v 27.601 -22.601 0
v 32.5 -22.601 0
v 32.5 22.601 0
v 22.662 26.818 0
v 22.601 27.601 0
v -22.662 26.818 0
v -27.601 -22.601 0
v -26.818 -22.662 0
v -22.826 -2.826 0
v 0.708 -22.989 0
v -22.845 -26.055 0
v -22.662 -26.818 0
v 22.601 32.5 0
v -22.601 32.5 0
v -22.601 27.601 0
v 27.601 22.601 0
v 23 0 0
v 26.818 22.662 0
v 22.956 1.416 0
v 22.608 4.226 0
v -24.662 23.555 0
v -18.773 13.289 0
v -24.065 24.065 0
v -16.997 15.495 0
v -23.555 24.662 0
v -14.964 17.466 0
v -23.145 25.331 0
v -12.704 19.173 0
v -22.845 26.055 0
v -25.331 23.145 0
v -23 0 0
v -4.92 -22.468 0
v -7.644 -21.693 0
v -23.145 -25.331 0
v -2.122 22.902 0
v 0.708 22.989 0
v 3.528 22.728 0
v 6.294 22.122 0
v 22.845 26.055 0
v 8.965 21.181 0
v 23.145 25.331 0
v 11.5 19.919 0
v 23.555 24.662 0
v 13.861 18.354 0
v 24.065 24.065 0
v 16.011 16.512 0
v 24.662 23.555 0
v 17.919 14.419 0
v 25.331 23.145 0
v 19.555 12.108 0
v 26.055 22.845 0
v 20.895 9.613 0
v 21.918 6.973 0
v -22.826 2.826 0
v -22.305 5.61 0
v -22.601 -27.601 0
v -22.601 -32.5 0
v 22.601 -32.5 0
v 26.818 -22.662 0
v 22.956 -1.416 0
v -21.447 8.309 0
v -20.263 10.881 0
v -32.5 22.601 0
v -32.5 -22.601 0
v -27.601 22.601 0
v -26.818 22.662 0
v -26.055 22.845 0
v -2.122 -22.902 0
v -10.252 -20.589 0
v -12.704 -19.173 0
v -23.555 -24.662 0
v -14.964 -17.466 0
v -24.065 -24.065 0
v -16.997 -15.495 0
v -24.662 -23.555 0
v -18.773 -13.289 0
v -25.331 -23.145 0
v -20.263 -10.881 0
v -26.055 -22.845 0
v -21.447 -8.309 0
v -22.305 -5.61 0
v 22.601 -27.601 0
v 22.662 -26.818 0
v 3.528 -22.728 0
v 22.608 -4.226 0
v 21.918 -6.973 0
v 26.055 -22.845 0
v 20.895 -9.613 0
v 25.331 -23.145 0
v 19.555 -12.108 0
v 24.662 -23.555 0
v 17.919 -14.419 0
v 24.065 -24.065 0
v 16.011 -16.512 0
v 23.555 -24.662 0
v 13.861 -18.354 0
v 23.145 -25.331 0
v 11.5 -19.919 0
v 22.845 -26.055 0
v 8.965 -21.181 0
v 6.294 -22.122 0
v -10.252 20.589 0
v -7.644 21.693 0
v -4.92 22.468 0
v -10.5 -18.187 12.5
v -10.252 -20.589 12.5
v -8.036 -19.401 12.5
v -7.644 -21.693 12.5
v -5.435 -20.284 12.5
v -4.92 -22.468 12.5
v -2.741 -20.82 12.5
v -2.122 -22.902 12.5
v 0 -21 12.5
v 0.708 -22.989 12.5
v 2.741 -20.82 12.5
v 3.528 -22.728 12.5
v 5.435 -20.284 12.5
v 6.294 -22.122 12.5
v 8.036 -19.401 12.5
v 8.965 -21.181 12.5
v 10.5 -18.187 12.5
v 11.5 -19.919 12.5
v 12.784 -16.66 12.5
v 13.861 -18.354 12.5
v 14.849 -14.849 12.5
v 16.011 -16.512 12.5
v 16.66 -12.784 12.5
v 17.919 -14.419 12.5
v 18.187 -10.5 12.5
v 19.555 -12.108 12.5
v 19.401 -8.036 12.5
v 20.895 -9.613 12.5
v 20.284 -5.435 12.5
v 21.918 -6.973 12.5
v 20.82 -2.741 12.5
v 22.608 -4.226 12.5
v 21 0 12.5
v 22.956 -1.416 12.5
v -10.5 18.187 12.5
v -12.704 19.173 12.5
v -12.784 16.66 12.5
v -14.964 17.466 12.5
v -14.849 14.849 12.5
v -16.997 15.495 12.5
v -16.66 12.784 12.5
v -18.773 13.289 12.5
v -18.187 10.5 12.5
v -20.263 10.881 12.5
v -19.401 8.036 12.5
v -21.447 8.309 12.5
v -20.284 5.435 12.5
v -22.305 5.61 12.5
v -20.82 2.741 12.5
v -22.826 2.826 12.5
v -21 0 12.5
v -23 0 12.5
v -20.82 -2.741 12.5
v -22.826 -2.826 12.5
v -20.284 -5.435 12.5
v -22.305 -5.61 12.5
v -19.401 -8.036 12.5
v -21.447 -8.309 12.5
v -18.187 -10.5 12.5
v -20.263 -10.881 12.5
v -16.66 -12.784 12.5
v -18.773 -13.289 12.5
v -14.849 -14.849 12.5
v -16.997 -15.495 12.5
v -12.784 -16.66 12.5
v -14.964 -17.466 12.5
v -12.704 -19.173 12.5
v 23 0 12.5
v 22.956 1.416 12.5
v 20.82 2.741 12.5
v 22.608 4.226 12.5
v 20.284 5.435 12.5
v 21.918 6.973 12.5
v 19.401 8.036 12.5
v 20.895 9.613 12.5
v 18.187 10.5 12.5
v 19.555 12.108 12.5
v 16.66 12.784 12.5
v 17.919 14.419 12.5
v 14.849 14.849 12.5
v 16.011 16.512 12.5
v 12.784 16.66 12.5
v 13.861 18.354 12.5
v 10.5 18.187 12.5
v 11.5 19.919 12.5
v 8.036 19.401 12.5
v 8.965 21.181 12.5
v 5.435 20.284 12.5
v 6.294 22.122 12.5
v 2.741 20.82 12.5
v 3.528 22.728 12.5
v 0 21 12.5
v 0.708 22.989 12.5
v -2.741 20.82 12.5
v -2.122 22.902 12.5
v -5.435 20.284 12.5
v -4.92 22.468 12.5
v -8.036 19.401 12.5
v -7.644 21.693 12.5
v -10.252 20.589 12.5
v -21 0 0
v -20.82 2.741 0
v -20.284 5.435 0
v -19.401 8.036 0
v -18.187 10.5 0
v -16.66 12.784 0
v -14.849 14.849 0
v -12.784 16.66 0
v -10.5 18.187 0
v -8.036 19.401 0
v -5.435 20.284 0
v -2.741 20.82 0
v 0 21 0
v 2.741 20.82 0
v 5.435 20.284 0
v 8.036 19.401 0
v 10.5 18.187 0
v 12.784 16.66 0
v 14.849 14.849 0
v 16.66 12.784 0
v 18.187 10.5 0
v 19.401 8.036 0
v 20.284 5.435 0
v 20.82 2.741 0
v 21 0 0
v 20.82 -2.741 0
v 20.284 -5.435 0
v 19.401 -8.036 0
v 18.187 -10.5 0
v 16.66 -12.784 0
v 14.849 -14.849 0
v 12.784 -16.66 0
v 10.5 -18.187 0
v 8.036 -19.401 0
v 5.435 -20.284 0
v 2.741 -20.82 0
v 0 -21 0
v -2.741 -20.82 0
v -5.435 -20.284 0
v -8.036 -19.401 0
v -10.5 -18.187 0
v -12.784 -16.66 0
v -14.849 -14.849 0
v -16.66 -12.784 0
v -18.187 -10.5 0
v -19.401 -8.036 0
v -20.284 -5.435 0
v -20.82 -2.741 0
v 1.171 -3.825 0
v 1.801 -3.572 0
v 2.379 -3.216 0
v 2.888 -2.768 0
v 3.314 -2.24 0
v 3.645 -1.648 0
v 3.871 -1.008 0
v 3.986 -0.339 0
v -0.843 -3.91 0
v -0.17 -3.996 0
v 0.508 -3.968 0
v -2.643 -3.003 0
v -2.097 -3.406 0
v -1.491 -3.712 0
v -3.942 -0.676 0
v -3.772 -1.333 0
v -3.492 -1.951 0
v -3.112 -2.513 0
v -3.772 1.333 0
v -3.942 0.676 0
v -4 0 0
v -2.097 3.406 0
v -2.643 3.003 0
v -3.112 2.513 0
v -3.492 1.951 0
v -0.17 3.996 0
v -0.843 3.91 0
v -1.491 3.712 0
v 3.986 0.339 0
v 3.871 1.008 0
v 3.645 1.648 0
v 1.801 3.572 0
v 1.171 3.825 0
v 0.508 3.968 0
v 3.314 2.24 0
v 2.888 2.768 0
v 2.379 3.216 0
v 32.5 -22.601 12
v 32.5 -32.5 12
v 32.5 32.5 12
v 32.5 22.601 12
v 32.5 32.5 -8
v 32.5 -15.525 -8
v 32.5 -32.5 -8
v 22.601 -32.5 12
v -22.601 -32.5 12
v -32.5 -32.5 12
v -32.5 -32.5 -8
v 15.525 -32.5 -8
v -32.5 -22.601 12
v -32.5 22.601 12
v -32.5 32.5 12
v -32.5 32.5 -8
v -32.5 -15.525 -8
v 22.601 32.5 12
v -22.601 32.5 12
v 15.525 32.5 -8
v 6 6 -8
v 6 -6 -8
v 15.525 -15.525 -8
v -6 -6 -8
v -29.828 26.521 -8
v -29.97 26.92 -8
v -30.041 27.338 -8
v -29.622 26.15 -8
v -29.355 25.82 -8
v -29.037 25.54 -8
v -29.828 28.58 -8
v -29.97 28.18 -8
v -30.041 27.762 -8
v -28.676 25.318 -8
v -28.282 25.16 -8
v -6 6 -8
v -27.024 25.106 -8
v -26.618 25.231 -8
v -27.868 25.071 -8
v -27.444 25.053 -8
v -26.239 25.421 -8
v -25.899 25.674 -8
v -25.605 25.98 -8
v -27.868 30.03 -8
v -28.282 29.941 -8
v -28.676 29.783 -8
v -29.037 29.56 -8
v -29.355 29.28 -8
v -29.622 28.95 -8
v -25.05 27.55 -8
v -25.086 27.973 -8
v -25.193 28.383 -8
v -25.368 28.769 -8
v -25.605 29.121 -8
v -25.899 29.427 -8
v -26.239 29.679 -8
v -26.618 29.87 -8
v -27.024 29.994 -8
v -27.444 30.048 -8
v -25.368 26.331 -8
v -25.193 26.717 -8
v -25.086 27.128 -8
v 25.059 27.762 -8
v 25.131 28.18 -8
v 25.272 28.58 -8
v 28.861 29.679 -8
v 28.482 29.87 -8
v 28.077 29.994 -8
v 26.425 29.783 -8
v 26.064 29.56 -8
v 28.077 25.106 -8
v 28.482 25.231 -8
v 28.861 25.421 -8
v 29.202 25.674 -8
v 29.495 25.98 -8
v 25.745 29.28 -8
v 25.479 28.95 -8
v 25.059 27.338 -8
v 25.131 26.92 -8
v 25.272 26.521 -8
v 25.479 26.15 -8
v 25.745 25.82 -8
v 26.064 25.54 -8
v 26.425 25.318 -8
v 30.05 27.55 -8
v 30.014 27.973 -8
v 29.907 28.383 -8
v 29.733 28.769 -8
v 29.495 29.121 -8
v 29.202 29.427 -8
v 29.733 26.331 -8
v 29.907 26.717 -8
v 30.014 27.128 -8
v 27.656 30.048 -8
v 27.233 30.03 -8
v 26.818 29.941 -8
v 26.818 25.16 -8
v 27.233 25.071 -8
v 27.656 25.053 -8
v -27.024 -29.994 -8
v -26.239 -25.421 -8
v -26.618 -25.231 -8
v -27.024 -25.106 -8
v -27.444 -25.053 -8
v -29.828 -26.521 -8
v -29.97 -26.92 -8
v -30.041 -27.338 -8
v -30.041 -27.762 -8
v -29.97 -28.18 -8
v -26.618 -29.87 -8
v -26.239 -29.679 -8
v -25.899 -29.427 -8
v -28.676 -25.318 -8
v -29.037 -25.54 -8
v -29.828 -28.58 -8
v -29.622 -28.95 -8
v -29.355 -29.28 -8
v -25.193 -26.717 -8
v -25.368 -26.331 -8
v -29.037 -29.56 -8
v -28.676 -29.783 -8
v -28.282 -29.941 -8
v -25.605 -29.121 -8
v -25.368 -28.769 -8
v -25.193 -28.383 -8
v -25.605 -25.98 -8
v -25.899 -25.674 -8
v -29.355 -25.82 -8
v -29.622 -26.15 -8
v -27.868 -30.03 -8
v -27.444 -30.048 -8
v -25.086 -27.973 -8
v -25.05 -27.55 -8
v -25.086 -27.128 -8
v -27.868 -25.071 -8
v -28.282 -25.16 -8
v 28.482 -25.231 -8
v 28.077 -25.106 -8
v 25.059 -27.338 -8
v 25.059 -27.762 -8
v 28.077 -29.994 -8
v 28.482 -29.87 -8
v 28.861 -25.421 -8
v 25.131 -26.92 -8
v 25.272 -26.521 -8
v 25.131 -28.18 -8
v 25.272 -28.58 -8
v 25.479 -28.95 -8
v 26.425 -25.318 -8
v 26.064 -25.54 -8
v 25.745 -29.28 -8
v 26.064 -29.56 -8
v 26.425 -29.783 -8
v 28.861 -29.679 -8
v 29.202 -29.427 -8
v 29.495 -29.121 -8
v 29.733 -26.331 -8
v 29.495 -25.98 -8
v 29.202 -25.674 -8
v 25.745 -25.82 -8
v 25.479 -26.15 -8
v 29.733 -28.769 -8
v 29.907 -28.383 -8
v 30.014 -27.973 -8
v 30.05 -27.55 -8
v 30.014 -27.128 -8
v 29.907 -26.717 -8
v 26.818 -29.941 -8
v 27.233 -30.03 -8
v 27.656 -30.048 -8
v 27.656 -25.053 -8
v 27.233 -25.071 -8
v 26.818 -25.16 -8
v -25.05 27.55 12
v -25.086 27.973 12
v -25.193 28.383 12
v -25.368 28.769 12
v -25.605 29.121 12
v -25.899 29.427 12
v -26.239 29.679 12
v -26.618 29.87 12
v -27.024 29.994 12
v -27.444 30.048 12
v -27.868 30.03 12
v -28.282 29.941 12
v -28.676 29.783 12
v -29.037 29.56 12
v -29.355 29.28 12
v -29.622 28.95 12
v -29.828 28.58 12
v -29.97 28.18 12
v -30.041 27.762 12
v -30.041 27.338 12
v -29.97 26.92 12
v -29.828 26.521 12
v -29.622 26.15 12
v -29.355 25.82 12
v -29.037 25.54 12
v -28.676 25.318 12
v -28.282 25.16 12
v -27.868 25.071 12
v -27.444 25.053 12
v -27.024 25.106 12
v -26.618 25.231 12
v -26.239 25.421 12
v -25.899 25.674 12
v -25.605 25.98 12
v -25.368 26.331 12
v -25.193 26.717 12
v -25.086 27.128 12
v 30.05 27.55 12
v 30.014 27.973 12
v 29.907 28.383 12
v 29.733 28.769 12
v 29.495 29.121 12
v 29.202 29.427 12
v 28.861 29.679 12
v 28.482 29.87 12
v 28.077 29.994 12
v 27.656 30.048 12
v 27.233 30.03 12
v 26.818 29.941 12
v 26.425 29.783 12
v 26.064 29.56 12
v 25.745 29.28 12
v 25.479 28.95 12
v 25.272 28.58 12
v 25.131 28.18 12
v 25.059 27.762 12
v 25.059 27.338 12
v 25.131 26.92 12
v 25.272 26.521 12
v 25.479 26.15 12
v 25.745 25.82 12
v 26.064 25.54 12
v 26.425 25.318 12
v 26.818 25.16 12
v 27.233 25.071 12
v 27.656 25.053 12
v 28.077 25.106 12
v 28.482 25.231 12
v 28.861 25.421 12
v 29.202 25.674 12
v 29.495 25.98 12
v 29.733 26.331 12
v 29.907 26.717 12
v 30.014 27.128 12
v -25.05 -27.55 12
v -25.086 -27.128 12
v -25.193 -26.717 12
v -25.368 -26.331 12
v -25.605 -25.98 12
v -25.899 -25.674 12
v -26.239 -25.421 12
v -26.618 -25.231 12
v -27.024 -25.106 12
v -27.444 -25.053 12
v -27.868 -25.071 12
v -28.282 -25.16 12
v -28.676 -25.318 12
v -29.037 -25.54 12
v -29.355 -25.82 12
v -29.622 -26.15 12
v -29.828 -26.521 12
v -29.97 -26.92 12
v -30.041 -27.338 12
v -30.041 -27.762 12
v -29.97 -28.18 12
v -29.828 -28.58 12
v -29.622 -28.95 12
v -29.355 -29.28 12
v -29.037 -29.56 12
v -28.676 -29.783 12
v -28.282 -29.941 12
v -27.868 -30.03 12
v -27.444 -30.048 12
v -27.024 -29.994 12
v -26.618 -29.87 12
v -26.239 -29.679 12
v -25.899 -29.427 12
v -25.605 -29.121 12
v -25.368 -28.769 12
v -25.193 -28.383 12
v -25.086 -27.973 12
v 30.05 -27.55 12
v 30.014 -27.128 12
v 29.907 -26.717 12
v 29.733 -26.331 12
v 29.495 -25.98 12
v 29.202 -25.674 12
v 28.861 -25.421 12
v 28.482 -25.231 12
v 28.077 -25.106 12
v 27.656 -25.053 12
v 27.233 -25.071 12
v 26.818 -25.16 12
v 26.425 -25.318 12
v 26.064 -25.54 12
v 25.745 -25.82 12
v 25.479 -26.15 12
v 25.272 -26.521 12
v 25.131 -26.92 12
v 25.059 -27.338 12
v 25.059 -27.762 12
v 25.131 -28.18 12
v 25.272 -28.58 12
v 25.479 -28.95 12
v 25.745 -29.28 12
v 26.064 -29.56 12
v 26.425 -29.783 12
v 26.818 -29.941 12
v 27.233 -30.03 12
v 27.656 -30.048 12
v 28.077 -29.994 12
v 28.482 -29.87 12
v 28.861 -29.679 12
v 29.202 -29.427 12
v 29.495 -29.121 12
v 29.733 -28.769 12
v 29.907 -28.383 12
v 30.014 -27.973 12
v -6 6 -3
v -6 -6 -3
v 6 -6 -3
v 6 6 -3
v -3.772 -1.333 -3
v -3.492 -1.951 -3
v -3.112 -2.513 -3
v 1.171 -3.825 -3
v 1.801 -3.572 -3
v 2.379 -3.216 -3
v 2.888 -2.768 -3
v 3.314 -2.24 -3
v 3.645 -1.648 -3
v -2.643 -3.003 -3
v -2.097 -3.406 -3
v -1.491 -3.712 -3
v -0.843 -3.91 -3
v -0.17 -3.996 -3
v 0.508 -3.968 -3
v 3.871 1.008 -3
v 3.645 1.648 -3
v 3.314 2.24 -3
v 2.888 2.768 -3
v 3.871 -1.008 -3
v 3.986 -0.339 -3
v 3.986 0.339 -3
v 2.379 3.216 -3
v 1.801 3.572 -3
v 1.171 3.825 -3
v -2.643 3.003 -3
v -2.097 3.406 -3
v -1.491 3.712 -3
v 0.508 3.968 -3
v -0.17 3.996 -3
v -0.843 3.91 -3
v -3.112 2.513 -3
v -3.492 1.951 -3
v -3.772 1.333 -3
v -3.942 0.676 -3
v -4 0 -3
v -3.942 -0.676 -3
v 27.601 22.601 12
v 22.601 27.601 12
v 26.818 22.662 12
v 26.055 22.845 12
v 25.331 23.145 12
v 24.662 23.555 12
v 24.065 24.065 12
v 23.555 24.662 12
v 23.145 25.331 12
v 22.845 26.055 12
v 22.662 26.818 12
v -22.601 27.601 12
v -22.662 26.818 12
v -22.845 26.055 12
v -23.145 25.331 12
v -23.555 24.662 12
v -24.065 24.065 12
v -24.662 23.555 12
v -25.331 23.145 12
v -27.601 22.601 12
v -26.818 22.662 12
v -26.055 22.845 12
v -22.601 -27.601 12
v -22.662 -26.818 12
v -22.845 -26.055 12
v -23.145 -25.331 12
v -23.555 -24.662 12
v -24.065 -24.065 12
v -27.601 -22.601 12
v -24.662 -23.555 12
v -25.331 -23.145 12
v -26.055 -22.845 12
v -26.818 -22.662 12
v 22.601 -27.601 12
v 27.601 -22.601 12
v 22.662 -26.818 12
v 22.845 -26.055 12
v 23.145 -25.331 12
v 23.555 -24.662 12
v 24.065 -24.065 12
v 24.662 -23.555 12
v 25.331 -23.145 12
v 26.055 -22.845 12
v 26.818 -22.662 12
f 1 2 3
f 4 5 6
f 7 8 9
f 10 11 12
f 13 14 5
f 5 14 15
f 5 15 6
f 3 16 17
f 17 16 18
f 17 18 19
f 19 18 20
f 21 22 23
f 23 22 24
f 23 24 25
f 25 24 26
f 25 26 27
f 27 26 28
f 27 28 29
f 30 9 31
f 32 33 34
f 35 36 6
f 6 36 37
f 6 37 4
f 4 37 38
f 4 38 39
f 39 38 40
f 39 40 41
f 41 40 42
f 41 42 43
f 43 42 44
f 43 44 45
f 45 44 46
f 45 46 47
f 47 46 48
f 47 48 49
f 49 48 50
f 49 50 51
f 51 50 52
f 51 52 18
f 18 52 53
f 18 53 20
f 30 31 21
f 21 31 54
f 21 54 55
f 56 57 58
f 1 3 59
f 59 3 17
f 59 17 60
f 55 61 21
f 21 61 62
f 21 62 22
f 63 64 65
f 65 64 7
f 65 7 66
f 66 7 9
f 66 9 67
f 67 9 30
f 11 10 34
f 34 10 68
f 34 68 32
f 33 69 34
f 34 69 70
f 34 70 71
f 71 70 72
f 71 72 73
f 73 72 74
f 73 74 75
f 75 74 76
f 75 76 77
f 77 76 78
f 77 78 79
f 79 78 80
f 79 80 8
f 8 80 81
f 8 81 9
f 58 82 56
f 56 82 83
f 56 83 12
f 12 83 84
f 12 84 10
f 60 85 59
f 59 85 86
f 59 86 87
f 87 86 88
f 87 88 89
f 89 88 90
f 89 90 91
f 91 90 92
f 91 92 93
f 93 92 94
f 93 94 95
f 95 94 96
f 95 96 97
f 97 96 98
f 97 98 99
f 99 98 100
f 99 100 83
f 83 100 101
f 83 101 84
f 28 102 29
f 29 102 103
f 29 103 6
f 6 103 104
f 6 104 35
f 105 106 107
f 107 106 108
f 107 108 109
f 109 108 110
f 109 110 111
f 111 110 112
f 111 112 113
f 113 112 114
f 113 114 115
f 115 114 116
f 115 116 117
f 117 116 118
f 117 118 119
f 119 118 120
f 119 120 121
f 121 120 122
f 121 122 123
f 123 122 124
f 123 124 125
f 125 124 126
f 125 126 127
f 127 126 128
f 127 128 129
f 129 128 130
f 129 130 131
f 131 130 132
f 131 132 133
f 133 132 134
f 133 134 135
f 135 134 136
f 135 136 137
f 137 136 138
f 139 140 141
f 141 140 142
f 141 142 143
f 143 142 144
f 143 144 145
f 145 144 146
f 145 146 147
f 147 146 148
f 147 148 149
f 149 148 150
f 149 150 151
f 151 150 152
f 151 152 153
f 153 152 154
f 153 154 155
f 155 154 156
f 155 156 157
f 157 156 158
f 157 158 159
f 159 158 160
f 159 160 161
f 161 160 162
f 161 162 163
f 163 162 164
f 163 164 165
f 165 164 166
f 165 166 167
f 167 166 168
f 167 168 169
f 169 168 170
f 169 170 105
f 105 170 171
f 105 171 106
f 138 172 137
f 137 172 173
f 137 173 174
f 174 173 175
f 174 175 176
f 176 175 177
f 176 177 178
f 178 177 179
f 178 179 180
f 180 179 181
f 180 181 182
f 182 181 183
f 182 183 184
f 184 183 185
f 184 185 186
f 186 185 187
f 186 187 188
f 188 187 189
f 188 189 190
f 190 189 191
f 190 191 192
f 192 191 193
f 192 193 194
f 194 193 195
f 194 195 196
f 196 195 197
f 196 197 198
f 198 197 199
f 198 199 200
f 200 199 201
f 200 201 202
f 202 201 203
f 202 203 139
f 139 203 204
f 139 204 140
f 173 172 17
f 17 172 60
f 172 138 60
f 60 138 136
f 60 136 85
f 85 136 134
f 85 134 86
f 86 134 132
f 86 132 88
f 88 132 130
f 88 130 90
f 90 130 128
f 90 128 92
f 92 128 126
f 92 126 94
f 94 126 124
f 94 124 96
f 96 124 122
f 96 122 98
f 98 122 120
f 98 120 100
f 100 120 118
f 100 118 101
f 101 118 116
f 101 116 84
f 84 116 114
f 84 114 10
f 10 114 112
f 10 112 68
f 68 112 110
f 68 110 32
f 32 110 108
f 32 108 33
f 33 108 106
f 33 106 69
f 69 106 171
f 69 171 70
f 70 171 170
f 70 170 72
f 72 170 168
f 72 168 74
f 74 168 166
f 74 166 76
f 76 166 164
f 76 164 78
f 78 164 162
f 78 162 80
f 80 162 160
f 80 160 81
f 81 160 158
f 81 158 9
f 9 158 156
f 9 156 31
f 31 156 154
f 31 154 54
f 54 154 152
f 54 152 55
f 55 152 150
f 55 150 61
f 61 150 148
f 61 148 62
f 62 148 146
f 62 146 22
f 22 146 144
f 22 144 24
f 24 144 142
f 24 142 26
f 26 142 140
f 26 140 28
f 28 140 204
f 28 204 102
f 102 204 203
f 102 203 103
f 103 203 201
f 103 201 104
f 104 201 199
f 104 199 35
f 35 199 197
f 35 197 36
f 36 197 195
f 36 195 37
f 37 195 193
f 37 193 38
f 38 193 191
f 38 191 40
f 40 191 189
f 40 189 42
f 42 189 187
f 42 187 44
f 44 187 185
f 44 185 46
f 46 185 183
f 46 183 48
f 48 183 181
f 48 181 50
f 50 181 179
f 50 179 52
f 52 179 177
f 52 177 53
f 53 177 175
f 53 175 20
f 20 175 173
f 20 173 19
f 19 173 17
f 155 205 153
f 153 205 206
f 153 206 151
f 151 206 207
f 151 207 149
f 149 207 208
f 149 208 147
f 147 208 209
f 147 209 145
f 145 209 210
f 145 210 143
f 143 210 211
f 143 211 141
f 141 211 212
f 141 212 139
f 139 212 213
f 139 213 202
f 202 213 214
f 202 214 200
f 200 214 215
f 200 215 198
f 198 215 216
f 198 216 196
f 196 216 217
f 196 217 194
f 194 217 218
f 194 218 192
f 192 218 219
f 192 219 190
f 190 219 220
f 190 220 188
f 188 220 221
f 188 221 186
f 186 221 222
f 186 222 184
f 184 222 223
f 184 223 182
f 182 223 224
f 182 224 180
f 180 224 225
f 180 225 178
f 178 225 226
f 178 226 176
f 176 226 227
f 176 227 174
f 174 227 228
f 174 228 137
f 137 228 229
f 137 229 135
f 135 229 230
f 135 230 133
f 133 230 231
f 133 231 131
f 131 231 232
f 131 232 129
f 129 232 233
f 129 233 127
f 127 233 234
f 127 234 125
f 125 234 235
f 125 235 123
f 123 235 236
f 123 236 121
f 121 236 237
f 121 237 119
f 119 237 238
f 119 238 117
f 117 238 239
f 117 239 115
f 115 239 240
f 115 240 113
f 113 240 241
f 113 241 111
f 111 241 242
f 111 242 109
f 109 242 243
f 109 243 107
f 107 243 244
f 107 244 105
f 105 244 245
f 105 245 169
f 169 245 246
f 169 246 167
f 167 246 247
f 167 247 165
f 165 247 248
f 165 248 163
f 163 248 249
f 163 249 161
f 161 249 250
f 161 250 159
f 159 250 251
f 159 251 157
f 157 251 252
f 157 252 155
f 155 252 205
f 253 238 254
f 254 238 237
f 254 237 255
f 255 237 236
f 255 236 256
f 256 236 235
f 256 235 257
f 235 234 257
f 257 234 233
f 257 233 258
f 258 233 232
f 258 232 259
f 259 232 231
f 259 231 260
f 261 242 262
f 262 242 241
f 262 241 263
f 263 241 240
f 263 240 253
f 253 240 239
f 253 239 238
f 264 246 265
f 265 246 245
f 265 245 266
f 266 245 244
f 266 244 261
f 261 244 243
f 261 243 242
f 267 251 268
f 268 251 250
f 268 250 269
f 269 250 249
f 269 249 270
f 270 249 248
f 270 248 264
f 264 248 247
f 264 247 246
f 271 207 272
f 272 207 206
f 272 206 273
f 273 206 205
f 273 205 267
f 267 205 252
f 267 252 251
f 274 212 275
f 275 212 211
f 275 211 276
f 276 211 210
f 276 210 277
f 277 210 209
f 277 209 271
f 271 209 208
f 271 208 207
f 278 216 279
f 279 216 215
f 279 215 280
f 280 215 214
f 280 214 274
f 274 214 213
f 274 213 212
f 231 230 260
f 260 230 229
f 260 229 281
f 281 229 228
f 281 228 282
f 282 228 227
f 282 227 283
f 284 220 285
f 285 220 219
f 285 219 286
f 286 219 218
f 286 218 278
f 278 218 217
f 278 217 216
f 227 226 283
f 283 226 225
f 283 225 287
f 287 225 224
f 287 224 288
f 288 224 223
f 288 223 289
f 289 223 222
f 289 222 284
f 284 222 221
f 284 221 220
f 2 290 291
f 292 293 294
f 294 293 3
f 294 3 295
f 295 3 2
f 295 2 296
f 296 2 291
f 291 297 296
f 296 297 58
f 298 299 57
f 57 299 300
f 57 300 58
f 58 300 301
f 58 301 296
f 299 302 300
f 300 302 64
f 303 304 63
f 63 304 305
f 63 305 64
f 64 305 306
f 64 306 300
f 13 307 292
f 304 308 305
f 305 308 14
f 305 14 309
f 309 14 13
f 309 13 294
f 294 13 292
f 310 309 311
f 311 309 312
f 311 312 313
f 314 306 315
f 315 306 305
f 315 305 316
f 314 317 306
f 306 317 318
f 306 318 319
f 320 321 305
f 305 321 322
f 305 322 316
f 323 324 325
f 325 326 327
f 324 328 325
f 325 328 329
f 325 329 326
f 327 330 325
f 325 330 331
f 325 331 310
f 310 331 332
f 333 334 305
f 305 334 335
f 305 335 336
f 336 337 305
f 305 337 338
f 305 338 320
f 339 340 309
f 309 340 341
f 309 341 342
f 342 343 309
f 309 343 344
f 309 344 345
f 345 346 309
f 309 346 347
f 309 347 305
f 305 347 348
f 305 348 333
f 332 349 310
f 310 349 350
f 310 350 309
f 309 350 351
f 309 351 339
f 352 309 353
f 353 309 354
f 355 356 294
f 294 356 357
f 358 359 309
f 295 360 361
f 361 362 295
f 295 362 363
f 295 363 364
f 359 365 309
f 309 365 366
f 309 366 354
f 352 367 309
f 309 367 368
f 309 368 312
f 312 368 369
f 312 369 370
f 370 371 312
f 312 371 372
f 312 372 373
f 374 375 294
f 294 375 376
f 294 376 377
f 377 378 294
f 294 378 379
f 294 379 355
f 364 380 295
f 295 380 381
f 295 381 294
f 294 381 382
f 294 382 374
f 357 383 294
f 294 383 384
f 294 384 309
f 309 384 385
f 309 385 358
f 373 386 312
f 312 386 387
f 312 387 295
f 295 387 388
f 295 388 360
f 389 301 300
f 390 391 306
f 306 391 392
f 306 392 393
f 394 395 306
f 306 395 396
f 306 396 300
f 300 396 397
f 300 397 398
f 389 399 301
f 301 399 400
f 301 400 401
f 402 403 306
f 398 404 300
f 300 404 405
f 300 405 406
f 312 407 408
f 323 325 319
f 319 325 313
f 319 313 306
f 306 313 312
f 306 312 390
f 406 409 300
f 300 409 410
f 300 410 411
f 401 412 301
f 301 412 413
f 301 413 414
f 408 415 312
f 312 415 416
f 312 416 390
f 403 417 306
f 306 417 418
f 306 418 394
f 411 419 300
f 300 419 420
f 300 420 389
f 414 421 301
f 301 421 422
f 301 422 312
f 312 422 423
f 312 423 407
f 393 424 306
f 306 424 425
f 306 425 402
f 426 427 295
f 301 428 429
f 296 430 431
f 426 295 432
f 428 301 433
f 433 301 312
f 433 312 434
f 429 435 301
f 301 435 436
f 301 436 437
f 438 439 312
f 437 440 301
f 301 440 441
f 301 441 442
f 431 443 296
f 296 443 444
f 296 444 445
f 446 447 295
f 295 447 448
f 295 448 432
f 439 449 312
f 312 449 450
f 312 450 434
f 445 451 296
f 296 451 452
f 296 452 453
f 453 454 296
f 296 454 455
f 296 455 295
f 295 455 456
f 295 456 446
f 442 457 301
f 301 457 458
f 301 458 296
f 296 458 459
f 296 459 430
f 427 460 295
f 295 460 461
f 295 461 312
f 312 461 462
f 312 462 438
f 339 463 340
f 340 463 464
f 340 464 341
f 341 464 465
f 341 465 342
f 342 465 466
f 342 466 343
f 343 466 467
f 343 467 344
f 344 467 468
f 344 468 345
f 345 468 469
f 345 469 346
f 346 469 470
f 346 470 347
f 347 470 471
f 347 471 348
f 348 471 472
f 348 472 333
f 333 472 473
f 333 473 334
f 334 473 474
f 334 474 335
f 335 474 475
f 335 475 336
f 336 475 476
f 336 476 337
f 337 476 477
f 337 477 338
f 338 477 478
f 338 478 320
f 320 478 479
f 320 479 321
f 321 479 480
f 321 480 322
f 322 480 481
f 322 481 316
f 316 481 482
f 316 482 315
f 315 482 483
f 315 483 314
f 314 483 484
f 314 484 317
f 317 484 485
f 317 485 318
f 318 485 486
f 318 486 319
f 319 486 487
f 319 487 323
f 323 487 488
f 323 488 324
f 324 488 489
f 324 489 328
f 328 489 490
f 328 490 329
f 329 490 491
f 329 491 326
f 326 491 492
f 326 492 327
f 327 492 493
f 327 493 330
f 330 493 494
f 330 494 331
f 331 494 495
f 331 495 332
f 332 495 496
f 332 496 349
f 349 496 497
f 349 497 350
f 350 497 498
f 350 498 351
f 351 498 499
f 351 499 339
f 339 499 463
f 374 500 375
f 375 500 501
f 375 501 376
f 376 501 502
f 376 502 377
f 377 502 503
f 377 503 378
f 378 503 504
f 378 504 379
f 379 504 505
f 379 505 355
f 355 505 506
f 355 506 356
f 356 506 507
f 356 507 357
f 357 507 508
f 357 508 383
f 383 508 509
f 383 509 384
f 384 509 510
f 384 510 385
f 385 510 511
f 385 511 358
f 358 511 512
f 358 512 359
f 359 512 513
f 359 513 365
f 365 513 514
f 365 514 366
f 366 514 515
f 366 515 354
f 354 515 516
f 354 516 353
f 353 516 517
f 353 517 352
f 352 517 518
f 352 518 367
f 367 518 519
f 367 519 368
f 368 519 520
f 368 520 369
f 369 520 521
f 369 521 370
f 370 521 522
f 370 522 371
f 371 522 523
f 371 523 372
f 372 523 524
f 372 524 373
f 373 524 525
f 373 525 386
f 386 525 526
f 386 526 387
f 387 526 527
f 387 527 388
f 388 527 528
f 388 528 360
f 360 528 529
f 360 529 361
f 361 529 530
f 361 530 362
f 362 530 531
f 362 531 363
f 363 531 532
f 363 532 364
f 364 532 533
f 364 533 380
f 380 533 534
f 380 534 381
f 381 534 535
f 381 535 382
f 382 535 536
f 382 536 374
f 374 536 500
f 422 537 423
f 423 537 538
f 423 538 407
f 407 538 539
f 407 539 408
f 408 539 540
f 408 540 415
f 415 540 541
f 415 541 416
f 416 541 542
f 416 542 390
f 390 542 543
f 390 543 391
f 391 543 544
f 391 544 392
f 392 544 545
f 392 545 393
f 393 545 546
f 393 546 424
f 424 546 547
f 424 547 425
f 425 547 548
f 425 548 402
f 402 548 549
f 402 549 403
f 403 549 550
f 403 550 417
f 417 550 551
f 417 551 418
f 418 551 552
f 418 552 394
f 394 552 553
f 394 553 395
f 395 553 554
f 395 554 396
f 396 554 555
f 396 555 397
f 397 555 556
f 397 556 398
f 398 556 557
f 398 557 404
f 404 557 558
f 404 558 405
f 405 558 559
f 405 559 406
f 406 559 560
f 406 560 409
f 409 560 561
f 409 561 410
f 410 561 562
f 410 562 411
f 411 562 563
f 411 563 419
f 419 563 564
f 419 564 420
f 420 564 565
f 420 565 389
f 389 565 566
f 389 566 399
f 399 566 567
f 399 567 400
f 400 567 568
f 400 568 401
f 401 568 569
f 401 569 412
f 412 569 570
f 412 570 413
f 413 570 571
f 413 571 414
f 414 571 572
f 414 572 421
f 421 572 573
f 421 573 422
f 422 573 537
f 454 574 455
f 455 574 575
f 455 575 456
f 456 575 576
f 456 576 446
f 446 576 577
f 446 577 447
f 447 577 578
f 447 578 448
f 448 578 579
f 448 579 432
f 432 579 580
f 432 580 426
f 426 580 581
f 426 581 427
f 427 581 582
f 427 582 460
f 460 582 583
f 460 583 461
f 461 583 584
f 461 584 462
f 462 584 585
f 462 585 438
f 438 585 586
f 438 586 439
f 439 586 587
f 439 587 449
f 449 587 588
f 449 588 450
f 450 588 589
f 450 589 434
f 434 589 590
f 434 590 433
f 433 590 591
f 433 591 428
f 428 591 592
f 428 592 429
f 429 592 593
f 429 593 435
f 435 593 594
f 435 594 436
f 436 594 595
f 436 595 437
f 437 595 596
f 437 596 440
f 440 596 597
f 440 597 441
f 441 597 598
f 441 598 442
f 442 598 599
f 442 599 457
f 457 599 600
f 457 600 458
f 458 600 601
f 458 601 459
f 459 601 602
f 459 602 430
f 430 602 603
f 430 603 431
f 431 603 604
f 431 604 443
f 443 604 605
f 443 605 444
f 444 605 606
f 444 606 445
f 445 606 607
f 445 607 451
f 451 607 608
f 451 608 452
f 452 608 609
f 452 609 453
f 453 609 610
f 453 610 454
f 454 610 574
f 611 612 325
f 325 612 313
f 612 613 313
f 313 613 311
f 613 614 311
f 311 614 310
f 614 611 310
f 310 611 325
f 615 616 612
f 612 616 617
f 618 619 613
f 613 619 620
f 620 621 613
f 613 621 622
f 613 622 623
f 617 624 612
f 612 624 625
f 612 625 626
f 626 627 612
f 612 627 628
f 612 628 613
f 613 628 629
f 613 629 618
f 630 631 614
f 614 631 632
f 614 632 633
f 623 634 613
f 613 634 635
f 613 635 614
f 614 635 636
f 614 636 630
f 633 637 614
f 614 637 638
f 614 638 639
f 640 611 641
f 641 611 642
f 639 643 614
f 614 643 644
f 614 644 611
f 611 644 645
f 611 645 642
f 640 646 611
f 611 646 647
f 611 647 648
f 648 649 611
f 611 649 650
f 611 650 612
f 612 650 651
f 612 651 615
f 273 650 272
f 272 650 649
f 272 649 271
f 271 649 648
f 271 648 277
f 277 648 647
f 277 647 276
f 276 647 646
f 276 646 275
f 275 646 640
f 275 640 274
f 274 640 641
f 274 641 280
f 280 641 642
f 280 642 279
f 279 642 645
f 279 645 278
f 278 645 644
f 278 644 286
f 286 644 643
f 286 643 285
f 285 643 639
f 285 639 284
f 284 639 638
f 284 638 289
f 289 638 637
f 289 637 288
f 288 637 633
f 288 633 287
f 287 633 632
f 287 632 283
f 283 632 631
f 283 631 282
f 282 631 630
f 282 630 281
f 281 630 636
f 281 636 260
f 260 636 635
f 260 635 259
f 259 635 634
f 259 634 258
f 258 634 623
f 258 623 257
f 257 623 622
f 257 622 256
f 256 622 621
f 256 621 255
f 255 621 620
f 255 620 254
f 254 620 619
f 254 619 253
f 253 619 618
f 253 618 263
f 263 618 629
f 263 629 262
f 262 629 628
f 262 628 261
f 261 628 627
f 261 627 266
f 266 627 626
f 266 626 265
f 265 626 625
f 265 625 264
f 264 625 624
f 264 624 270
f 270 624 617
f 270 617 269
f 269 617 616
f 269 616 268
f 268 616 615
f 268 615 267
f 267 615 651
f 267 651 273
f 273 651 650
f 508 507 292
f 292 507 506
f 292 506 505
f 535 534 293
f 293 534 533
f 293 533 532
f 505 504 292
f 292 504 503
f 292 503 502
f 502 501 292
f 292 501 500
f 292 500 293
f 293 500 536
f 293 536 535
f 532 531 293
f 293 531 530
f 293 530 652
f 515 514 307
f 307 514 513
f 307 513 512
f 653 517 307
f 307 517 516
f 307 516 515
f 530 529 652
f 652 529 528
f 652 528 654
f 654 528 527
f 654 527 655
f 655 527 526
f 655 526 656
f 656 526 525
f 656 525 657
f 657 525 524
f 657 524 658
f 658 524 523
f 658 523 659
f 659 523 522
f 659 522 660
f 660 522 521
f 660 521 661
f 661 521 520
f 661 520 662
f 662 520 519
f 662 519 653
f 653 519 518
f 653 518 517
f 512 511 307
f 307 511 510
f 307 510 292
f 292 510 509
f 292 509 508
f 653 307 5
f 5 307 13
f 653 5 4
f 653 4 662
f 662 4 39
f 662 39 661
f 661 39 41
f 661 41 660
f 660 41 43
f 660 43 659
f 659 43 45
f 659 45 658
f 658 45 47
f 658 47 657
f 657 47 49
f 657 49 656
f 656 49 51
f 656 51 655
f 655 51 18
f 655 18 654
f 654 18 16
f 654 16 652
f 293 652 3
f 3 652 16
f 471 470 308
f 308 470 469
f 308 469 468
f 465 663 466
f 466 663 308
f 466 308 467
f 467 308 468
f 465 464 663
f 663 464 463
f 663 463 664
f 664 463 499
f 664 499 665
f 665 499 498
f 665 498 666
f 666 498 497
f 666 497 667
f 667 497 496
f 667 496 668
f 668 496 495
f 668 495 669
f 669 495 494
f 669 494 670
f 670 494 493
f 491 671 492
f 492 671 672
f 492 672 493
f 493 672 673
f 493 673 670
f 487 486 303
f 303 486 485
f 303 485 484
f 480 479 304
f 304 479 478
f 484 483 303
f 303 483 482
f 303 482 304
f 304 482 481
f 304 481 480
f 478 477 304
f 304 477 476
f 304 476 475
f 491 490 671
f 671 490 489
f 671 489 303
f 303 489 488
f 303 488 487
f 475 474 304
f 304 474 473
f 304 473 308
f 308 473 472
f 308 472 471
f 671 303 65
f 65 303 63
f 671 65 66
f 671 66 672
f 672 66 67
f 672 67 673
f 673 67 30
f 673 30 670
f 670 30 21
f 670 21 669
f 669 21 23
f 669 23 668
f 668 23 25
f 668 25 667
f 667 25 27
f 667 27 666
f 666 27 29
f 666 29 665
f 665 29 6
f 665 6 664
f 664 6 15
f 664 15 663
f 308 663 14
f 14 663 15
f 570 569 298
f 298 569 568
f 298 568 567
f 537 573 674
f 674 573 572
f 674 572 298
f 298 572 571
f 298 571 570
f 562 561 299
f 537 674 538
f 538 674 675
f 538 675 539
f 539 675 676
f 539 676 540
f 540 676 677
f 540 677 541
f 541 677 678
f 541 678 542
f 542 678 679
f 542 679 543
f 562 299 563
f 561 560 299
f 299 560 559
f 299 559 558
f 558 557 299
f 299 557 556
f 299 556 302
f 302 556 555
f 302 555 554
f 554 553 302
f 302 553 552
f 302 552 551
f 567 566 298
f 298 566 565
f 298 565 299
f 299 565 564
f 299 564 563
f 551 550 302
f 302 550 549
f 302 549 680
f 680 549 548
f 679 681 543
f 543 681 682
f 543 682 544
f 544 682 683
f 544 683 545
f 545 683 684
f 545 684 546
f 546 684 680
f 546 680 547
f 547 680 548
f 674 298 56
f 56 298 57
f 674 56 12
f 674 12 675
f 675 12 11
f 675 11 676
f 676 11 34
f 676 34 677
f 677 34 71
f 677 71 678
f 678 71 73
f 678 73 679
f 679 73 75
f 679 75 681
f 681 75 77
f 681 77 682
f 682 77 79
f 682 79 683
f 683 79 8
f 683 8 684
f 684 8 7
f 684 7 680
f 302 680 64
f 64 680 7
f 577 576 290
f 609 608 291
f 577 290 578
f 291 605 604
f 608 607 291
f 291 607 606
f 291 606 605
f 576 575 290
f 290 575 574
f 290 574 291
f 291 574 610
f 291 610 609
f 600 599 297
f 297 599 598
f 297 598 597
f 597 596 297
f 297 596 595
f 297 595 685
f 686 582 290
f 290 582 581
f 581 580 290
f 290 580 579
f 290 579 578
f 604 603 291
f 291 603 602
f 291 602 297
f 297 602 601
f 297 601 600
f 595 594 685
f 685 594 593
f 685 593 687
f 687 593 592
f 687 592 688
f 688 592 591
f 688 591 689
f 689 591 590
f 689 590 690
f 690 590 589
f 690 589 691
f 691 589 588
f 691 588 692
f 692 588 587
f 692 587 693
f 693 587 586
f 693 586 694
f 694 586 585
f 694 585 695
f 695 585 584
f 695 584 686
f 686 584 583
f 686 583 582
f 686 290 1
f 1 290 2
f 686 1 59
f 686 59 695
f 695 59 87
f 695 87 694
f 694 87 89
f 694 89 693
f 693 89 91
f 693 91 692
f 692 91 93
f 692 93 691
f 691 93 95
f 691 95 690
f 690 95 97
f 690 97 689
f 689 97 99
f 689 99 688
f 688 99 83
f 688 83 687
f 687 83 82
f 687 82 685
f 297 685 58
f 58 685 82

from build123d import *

# Parameters (mm, degrees)
CROQUIS1_R              = 23
CROQUIS1_R_2            = 21
SALIENTE_EXTRUIR1_DEPTH = 12.5
CROQUIS2_W              = 65
CROQUIS2_H              = 65
CROQUIS2_R              = 2.5
SALIENTE_EXTRUIR2_DEPTH = 8
CROQUIS3_W              = 12
CROQUIS3_H              = 12
CORTAR_EXTRUIR1_DEPTH   = 5
CORTAR_EXTRUIR2_REACH   = 50.505
CROQUIS4_R              = 4
SALIENTE_EXTRUIR3_START = 12
CROQUIS5_R              = 2.5
SALIENTE_EXTRUIR3_DEPTH = 12


with BuildPart() as part:
    # Croquis1 → Saliente-Extruir1 (new body)
    with BuildSketch(Plane.XY):
        Circle(CROQUIS1_R)
        Circle(CROQUIS1_R_2, mode=Mode.SUBTRACT)
    extrude(amount=SALIENTE_EXTRUIR1_DEPTH)

    # Croquis2 → Saliente-Extruir2 (add)
    with BuildSketch(Plane.XY):
        Rectangle(CROQUIS2_W, CROQUIS2_H)
        with Locations((-27.550252532, 27.550252532)):
            Circle(CROQUIS2_R, mode=Mode.SUBTRACT)
        with Locations((27.550252532, 27.550252532)):
            Circle(CROQUIS2_R, mode=Mode.SUBTRACT)
        with Locations((-27.550252532, -27.550252532)):
            Circle(CROQUIS2_R, mode=Mode.SUBTRACT)
        with Locations((27.550252532, -27.550252532)):
            Circle(CROQUIS2_R, mode=Mode.SUBTRACT)
    extrude(amount=-SALIENTE_EXTRUIR2_DEPTH)

    # Croquis3 → Cortar-Extruir1 (cut)
    with BuildSketch(Plane(origin=(0, 0, -8), x_dir=(-1, 0, 0), z_dir=(0, 0, -1))):
        Rectangle(CROQUIS3_W, CROQUIS3_H)
    extrude(amount=-CORTAR_EXTRUIR1_DEPTH, mode=Mode.SUBTRACT)

    # Croquis4 → Cortar-Extruir2 (cut, up to next)
    with BuildSketch(Plane(origin=(0, 0, -3), x_dir=(-1, 0, 0), z_dir=(0, 0, -1)), mode=Mode.PRIVATE) as cortar_extruir2_sk1:
        Circle(CROQUIS4_R)
    cortar_extruir2_tool1 = extrude(cortar_extruir2_sk1.sketch, amount=-CORTAR_EXTRUIR2_REACH, mode=Mode.PRIVATE) & part.part
    add(cortar_extruir2_tool1.solids().sort_by_distance((0, 0, -3))[0], mode=Mode.SUBTRACT)

    # Croquis5 → Saliente-Extruir3 (add)
    # profile 1 of 4: a face of its own
    with BuildSketch(Plane.XY.offset(SALIENTE_EXTRUIR3_START)):
        with BuildLine():
            Line((27.600505063, 22.600505063), (32.5, 22.600505063))
            Line((32.5, 22.600505063), (32.5, 32.5))
            Line((32.5, 32.5), (22.600505063, 32.5))
            Line((22.600505063, 32.5), (22.600505063, 27.600505063))
            ThreePointArc((22.600505063, 27.600505063), (24.064971157, 24.064971157), (27.600505063, 22.600505063))
        make_face()
        with Locations((27.550252532, 27.550252532)):
            Circle(CROQUIS5_R, mode=Mode.SUBTRACT)
    # profile 2 of 4: a face of its own
    with BuildSketch(Plane.XY.offset(SALIENTE_EXTRUIR3_START)):
        with BuildLine():
            Line((-27.600505063, 22.600505063), (-32.5, 22.600505063))
            Line((-32.5, 22.600505063), (-32.5, 32.5))
            Line((-32.5, 32.5), (-22.600505063, 32.5))
            Line((-22.600505063, 32.5), (-22.600505063, 27.600505063))
            ThreePointArc((-22.600505063, 27.600505063), (-24.064971157, 24.064971157), (-27.600505063, 22.600505063))
        make_face()
        with Locations((-27.550252532, 27.550252532)):
            Circle(CROQUIS5_R, mode=Mode.SUBTRACT)
    # profile 3 of 4: a face of its own
    with BuildSketch(Plane.XY.offset(SALIENTE_EXTRUIR3_START)):
        with BuildLine():
            Line((-27.600505063, -22.600505063), (-32.5, -22.600505063))
            Line((-32.5, -22.600505063), (-32.5, -32.5))
            Line((-32.5, -32.5), (-22.600505063, -32.5))
            Line((-22.600505063, -32.5), (-22.600505063, -27.600505063))
            ThreePointArc((-22.600505063, -27.600505063), (-24.064971157, -24.064971157), (-27.600505063, -22.600505063))
        make_face()
        with Locations((-27.550252532, -27.550252532)):
            Circle(CROQUIS5_R, mode=Mode.SUBTRACT)
    # profile 4 of 4: a face of its own
    with BuildSketch(Plane.XY.offset(SALIENTE_EXTRUIR3_START)):
        with BuildLine():
            Line((27.600505063, -22.600505063), (32.5, -22.600505063))
            Line((32.5, -22.600505063), (32.5, -32.5))
            Line((32.5, -32.5), (22.600505063, -32.5))
            Line((22.600505063, -32.5), (22.600505063, -27.600505063))
            ThreePointArc((22.600505063, -27.600505063), (24.064971157, -24.064971157), (27.600505063, -22.600505063))
        make_face()
        with Locations((27.550252532, -27.550252532)):
            Circle(CROQUIS5_R, mode=Mode.SUBTRACT)
    extrude(amount=-SALIENTE_EXTRUIR3_DEPTH)


solid = part.part
